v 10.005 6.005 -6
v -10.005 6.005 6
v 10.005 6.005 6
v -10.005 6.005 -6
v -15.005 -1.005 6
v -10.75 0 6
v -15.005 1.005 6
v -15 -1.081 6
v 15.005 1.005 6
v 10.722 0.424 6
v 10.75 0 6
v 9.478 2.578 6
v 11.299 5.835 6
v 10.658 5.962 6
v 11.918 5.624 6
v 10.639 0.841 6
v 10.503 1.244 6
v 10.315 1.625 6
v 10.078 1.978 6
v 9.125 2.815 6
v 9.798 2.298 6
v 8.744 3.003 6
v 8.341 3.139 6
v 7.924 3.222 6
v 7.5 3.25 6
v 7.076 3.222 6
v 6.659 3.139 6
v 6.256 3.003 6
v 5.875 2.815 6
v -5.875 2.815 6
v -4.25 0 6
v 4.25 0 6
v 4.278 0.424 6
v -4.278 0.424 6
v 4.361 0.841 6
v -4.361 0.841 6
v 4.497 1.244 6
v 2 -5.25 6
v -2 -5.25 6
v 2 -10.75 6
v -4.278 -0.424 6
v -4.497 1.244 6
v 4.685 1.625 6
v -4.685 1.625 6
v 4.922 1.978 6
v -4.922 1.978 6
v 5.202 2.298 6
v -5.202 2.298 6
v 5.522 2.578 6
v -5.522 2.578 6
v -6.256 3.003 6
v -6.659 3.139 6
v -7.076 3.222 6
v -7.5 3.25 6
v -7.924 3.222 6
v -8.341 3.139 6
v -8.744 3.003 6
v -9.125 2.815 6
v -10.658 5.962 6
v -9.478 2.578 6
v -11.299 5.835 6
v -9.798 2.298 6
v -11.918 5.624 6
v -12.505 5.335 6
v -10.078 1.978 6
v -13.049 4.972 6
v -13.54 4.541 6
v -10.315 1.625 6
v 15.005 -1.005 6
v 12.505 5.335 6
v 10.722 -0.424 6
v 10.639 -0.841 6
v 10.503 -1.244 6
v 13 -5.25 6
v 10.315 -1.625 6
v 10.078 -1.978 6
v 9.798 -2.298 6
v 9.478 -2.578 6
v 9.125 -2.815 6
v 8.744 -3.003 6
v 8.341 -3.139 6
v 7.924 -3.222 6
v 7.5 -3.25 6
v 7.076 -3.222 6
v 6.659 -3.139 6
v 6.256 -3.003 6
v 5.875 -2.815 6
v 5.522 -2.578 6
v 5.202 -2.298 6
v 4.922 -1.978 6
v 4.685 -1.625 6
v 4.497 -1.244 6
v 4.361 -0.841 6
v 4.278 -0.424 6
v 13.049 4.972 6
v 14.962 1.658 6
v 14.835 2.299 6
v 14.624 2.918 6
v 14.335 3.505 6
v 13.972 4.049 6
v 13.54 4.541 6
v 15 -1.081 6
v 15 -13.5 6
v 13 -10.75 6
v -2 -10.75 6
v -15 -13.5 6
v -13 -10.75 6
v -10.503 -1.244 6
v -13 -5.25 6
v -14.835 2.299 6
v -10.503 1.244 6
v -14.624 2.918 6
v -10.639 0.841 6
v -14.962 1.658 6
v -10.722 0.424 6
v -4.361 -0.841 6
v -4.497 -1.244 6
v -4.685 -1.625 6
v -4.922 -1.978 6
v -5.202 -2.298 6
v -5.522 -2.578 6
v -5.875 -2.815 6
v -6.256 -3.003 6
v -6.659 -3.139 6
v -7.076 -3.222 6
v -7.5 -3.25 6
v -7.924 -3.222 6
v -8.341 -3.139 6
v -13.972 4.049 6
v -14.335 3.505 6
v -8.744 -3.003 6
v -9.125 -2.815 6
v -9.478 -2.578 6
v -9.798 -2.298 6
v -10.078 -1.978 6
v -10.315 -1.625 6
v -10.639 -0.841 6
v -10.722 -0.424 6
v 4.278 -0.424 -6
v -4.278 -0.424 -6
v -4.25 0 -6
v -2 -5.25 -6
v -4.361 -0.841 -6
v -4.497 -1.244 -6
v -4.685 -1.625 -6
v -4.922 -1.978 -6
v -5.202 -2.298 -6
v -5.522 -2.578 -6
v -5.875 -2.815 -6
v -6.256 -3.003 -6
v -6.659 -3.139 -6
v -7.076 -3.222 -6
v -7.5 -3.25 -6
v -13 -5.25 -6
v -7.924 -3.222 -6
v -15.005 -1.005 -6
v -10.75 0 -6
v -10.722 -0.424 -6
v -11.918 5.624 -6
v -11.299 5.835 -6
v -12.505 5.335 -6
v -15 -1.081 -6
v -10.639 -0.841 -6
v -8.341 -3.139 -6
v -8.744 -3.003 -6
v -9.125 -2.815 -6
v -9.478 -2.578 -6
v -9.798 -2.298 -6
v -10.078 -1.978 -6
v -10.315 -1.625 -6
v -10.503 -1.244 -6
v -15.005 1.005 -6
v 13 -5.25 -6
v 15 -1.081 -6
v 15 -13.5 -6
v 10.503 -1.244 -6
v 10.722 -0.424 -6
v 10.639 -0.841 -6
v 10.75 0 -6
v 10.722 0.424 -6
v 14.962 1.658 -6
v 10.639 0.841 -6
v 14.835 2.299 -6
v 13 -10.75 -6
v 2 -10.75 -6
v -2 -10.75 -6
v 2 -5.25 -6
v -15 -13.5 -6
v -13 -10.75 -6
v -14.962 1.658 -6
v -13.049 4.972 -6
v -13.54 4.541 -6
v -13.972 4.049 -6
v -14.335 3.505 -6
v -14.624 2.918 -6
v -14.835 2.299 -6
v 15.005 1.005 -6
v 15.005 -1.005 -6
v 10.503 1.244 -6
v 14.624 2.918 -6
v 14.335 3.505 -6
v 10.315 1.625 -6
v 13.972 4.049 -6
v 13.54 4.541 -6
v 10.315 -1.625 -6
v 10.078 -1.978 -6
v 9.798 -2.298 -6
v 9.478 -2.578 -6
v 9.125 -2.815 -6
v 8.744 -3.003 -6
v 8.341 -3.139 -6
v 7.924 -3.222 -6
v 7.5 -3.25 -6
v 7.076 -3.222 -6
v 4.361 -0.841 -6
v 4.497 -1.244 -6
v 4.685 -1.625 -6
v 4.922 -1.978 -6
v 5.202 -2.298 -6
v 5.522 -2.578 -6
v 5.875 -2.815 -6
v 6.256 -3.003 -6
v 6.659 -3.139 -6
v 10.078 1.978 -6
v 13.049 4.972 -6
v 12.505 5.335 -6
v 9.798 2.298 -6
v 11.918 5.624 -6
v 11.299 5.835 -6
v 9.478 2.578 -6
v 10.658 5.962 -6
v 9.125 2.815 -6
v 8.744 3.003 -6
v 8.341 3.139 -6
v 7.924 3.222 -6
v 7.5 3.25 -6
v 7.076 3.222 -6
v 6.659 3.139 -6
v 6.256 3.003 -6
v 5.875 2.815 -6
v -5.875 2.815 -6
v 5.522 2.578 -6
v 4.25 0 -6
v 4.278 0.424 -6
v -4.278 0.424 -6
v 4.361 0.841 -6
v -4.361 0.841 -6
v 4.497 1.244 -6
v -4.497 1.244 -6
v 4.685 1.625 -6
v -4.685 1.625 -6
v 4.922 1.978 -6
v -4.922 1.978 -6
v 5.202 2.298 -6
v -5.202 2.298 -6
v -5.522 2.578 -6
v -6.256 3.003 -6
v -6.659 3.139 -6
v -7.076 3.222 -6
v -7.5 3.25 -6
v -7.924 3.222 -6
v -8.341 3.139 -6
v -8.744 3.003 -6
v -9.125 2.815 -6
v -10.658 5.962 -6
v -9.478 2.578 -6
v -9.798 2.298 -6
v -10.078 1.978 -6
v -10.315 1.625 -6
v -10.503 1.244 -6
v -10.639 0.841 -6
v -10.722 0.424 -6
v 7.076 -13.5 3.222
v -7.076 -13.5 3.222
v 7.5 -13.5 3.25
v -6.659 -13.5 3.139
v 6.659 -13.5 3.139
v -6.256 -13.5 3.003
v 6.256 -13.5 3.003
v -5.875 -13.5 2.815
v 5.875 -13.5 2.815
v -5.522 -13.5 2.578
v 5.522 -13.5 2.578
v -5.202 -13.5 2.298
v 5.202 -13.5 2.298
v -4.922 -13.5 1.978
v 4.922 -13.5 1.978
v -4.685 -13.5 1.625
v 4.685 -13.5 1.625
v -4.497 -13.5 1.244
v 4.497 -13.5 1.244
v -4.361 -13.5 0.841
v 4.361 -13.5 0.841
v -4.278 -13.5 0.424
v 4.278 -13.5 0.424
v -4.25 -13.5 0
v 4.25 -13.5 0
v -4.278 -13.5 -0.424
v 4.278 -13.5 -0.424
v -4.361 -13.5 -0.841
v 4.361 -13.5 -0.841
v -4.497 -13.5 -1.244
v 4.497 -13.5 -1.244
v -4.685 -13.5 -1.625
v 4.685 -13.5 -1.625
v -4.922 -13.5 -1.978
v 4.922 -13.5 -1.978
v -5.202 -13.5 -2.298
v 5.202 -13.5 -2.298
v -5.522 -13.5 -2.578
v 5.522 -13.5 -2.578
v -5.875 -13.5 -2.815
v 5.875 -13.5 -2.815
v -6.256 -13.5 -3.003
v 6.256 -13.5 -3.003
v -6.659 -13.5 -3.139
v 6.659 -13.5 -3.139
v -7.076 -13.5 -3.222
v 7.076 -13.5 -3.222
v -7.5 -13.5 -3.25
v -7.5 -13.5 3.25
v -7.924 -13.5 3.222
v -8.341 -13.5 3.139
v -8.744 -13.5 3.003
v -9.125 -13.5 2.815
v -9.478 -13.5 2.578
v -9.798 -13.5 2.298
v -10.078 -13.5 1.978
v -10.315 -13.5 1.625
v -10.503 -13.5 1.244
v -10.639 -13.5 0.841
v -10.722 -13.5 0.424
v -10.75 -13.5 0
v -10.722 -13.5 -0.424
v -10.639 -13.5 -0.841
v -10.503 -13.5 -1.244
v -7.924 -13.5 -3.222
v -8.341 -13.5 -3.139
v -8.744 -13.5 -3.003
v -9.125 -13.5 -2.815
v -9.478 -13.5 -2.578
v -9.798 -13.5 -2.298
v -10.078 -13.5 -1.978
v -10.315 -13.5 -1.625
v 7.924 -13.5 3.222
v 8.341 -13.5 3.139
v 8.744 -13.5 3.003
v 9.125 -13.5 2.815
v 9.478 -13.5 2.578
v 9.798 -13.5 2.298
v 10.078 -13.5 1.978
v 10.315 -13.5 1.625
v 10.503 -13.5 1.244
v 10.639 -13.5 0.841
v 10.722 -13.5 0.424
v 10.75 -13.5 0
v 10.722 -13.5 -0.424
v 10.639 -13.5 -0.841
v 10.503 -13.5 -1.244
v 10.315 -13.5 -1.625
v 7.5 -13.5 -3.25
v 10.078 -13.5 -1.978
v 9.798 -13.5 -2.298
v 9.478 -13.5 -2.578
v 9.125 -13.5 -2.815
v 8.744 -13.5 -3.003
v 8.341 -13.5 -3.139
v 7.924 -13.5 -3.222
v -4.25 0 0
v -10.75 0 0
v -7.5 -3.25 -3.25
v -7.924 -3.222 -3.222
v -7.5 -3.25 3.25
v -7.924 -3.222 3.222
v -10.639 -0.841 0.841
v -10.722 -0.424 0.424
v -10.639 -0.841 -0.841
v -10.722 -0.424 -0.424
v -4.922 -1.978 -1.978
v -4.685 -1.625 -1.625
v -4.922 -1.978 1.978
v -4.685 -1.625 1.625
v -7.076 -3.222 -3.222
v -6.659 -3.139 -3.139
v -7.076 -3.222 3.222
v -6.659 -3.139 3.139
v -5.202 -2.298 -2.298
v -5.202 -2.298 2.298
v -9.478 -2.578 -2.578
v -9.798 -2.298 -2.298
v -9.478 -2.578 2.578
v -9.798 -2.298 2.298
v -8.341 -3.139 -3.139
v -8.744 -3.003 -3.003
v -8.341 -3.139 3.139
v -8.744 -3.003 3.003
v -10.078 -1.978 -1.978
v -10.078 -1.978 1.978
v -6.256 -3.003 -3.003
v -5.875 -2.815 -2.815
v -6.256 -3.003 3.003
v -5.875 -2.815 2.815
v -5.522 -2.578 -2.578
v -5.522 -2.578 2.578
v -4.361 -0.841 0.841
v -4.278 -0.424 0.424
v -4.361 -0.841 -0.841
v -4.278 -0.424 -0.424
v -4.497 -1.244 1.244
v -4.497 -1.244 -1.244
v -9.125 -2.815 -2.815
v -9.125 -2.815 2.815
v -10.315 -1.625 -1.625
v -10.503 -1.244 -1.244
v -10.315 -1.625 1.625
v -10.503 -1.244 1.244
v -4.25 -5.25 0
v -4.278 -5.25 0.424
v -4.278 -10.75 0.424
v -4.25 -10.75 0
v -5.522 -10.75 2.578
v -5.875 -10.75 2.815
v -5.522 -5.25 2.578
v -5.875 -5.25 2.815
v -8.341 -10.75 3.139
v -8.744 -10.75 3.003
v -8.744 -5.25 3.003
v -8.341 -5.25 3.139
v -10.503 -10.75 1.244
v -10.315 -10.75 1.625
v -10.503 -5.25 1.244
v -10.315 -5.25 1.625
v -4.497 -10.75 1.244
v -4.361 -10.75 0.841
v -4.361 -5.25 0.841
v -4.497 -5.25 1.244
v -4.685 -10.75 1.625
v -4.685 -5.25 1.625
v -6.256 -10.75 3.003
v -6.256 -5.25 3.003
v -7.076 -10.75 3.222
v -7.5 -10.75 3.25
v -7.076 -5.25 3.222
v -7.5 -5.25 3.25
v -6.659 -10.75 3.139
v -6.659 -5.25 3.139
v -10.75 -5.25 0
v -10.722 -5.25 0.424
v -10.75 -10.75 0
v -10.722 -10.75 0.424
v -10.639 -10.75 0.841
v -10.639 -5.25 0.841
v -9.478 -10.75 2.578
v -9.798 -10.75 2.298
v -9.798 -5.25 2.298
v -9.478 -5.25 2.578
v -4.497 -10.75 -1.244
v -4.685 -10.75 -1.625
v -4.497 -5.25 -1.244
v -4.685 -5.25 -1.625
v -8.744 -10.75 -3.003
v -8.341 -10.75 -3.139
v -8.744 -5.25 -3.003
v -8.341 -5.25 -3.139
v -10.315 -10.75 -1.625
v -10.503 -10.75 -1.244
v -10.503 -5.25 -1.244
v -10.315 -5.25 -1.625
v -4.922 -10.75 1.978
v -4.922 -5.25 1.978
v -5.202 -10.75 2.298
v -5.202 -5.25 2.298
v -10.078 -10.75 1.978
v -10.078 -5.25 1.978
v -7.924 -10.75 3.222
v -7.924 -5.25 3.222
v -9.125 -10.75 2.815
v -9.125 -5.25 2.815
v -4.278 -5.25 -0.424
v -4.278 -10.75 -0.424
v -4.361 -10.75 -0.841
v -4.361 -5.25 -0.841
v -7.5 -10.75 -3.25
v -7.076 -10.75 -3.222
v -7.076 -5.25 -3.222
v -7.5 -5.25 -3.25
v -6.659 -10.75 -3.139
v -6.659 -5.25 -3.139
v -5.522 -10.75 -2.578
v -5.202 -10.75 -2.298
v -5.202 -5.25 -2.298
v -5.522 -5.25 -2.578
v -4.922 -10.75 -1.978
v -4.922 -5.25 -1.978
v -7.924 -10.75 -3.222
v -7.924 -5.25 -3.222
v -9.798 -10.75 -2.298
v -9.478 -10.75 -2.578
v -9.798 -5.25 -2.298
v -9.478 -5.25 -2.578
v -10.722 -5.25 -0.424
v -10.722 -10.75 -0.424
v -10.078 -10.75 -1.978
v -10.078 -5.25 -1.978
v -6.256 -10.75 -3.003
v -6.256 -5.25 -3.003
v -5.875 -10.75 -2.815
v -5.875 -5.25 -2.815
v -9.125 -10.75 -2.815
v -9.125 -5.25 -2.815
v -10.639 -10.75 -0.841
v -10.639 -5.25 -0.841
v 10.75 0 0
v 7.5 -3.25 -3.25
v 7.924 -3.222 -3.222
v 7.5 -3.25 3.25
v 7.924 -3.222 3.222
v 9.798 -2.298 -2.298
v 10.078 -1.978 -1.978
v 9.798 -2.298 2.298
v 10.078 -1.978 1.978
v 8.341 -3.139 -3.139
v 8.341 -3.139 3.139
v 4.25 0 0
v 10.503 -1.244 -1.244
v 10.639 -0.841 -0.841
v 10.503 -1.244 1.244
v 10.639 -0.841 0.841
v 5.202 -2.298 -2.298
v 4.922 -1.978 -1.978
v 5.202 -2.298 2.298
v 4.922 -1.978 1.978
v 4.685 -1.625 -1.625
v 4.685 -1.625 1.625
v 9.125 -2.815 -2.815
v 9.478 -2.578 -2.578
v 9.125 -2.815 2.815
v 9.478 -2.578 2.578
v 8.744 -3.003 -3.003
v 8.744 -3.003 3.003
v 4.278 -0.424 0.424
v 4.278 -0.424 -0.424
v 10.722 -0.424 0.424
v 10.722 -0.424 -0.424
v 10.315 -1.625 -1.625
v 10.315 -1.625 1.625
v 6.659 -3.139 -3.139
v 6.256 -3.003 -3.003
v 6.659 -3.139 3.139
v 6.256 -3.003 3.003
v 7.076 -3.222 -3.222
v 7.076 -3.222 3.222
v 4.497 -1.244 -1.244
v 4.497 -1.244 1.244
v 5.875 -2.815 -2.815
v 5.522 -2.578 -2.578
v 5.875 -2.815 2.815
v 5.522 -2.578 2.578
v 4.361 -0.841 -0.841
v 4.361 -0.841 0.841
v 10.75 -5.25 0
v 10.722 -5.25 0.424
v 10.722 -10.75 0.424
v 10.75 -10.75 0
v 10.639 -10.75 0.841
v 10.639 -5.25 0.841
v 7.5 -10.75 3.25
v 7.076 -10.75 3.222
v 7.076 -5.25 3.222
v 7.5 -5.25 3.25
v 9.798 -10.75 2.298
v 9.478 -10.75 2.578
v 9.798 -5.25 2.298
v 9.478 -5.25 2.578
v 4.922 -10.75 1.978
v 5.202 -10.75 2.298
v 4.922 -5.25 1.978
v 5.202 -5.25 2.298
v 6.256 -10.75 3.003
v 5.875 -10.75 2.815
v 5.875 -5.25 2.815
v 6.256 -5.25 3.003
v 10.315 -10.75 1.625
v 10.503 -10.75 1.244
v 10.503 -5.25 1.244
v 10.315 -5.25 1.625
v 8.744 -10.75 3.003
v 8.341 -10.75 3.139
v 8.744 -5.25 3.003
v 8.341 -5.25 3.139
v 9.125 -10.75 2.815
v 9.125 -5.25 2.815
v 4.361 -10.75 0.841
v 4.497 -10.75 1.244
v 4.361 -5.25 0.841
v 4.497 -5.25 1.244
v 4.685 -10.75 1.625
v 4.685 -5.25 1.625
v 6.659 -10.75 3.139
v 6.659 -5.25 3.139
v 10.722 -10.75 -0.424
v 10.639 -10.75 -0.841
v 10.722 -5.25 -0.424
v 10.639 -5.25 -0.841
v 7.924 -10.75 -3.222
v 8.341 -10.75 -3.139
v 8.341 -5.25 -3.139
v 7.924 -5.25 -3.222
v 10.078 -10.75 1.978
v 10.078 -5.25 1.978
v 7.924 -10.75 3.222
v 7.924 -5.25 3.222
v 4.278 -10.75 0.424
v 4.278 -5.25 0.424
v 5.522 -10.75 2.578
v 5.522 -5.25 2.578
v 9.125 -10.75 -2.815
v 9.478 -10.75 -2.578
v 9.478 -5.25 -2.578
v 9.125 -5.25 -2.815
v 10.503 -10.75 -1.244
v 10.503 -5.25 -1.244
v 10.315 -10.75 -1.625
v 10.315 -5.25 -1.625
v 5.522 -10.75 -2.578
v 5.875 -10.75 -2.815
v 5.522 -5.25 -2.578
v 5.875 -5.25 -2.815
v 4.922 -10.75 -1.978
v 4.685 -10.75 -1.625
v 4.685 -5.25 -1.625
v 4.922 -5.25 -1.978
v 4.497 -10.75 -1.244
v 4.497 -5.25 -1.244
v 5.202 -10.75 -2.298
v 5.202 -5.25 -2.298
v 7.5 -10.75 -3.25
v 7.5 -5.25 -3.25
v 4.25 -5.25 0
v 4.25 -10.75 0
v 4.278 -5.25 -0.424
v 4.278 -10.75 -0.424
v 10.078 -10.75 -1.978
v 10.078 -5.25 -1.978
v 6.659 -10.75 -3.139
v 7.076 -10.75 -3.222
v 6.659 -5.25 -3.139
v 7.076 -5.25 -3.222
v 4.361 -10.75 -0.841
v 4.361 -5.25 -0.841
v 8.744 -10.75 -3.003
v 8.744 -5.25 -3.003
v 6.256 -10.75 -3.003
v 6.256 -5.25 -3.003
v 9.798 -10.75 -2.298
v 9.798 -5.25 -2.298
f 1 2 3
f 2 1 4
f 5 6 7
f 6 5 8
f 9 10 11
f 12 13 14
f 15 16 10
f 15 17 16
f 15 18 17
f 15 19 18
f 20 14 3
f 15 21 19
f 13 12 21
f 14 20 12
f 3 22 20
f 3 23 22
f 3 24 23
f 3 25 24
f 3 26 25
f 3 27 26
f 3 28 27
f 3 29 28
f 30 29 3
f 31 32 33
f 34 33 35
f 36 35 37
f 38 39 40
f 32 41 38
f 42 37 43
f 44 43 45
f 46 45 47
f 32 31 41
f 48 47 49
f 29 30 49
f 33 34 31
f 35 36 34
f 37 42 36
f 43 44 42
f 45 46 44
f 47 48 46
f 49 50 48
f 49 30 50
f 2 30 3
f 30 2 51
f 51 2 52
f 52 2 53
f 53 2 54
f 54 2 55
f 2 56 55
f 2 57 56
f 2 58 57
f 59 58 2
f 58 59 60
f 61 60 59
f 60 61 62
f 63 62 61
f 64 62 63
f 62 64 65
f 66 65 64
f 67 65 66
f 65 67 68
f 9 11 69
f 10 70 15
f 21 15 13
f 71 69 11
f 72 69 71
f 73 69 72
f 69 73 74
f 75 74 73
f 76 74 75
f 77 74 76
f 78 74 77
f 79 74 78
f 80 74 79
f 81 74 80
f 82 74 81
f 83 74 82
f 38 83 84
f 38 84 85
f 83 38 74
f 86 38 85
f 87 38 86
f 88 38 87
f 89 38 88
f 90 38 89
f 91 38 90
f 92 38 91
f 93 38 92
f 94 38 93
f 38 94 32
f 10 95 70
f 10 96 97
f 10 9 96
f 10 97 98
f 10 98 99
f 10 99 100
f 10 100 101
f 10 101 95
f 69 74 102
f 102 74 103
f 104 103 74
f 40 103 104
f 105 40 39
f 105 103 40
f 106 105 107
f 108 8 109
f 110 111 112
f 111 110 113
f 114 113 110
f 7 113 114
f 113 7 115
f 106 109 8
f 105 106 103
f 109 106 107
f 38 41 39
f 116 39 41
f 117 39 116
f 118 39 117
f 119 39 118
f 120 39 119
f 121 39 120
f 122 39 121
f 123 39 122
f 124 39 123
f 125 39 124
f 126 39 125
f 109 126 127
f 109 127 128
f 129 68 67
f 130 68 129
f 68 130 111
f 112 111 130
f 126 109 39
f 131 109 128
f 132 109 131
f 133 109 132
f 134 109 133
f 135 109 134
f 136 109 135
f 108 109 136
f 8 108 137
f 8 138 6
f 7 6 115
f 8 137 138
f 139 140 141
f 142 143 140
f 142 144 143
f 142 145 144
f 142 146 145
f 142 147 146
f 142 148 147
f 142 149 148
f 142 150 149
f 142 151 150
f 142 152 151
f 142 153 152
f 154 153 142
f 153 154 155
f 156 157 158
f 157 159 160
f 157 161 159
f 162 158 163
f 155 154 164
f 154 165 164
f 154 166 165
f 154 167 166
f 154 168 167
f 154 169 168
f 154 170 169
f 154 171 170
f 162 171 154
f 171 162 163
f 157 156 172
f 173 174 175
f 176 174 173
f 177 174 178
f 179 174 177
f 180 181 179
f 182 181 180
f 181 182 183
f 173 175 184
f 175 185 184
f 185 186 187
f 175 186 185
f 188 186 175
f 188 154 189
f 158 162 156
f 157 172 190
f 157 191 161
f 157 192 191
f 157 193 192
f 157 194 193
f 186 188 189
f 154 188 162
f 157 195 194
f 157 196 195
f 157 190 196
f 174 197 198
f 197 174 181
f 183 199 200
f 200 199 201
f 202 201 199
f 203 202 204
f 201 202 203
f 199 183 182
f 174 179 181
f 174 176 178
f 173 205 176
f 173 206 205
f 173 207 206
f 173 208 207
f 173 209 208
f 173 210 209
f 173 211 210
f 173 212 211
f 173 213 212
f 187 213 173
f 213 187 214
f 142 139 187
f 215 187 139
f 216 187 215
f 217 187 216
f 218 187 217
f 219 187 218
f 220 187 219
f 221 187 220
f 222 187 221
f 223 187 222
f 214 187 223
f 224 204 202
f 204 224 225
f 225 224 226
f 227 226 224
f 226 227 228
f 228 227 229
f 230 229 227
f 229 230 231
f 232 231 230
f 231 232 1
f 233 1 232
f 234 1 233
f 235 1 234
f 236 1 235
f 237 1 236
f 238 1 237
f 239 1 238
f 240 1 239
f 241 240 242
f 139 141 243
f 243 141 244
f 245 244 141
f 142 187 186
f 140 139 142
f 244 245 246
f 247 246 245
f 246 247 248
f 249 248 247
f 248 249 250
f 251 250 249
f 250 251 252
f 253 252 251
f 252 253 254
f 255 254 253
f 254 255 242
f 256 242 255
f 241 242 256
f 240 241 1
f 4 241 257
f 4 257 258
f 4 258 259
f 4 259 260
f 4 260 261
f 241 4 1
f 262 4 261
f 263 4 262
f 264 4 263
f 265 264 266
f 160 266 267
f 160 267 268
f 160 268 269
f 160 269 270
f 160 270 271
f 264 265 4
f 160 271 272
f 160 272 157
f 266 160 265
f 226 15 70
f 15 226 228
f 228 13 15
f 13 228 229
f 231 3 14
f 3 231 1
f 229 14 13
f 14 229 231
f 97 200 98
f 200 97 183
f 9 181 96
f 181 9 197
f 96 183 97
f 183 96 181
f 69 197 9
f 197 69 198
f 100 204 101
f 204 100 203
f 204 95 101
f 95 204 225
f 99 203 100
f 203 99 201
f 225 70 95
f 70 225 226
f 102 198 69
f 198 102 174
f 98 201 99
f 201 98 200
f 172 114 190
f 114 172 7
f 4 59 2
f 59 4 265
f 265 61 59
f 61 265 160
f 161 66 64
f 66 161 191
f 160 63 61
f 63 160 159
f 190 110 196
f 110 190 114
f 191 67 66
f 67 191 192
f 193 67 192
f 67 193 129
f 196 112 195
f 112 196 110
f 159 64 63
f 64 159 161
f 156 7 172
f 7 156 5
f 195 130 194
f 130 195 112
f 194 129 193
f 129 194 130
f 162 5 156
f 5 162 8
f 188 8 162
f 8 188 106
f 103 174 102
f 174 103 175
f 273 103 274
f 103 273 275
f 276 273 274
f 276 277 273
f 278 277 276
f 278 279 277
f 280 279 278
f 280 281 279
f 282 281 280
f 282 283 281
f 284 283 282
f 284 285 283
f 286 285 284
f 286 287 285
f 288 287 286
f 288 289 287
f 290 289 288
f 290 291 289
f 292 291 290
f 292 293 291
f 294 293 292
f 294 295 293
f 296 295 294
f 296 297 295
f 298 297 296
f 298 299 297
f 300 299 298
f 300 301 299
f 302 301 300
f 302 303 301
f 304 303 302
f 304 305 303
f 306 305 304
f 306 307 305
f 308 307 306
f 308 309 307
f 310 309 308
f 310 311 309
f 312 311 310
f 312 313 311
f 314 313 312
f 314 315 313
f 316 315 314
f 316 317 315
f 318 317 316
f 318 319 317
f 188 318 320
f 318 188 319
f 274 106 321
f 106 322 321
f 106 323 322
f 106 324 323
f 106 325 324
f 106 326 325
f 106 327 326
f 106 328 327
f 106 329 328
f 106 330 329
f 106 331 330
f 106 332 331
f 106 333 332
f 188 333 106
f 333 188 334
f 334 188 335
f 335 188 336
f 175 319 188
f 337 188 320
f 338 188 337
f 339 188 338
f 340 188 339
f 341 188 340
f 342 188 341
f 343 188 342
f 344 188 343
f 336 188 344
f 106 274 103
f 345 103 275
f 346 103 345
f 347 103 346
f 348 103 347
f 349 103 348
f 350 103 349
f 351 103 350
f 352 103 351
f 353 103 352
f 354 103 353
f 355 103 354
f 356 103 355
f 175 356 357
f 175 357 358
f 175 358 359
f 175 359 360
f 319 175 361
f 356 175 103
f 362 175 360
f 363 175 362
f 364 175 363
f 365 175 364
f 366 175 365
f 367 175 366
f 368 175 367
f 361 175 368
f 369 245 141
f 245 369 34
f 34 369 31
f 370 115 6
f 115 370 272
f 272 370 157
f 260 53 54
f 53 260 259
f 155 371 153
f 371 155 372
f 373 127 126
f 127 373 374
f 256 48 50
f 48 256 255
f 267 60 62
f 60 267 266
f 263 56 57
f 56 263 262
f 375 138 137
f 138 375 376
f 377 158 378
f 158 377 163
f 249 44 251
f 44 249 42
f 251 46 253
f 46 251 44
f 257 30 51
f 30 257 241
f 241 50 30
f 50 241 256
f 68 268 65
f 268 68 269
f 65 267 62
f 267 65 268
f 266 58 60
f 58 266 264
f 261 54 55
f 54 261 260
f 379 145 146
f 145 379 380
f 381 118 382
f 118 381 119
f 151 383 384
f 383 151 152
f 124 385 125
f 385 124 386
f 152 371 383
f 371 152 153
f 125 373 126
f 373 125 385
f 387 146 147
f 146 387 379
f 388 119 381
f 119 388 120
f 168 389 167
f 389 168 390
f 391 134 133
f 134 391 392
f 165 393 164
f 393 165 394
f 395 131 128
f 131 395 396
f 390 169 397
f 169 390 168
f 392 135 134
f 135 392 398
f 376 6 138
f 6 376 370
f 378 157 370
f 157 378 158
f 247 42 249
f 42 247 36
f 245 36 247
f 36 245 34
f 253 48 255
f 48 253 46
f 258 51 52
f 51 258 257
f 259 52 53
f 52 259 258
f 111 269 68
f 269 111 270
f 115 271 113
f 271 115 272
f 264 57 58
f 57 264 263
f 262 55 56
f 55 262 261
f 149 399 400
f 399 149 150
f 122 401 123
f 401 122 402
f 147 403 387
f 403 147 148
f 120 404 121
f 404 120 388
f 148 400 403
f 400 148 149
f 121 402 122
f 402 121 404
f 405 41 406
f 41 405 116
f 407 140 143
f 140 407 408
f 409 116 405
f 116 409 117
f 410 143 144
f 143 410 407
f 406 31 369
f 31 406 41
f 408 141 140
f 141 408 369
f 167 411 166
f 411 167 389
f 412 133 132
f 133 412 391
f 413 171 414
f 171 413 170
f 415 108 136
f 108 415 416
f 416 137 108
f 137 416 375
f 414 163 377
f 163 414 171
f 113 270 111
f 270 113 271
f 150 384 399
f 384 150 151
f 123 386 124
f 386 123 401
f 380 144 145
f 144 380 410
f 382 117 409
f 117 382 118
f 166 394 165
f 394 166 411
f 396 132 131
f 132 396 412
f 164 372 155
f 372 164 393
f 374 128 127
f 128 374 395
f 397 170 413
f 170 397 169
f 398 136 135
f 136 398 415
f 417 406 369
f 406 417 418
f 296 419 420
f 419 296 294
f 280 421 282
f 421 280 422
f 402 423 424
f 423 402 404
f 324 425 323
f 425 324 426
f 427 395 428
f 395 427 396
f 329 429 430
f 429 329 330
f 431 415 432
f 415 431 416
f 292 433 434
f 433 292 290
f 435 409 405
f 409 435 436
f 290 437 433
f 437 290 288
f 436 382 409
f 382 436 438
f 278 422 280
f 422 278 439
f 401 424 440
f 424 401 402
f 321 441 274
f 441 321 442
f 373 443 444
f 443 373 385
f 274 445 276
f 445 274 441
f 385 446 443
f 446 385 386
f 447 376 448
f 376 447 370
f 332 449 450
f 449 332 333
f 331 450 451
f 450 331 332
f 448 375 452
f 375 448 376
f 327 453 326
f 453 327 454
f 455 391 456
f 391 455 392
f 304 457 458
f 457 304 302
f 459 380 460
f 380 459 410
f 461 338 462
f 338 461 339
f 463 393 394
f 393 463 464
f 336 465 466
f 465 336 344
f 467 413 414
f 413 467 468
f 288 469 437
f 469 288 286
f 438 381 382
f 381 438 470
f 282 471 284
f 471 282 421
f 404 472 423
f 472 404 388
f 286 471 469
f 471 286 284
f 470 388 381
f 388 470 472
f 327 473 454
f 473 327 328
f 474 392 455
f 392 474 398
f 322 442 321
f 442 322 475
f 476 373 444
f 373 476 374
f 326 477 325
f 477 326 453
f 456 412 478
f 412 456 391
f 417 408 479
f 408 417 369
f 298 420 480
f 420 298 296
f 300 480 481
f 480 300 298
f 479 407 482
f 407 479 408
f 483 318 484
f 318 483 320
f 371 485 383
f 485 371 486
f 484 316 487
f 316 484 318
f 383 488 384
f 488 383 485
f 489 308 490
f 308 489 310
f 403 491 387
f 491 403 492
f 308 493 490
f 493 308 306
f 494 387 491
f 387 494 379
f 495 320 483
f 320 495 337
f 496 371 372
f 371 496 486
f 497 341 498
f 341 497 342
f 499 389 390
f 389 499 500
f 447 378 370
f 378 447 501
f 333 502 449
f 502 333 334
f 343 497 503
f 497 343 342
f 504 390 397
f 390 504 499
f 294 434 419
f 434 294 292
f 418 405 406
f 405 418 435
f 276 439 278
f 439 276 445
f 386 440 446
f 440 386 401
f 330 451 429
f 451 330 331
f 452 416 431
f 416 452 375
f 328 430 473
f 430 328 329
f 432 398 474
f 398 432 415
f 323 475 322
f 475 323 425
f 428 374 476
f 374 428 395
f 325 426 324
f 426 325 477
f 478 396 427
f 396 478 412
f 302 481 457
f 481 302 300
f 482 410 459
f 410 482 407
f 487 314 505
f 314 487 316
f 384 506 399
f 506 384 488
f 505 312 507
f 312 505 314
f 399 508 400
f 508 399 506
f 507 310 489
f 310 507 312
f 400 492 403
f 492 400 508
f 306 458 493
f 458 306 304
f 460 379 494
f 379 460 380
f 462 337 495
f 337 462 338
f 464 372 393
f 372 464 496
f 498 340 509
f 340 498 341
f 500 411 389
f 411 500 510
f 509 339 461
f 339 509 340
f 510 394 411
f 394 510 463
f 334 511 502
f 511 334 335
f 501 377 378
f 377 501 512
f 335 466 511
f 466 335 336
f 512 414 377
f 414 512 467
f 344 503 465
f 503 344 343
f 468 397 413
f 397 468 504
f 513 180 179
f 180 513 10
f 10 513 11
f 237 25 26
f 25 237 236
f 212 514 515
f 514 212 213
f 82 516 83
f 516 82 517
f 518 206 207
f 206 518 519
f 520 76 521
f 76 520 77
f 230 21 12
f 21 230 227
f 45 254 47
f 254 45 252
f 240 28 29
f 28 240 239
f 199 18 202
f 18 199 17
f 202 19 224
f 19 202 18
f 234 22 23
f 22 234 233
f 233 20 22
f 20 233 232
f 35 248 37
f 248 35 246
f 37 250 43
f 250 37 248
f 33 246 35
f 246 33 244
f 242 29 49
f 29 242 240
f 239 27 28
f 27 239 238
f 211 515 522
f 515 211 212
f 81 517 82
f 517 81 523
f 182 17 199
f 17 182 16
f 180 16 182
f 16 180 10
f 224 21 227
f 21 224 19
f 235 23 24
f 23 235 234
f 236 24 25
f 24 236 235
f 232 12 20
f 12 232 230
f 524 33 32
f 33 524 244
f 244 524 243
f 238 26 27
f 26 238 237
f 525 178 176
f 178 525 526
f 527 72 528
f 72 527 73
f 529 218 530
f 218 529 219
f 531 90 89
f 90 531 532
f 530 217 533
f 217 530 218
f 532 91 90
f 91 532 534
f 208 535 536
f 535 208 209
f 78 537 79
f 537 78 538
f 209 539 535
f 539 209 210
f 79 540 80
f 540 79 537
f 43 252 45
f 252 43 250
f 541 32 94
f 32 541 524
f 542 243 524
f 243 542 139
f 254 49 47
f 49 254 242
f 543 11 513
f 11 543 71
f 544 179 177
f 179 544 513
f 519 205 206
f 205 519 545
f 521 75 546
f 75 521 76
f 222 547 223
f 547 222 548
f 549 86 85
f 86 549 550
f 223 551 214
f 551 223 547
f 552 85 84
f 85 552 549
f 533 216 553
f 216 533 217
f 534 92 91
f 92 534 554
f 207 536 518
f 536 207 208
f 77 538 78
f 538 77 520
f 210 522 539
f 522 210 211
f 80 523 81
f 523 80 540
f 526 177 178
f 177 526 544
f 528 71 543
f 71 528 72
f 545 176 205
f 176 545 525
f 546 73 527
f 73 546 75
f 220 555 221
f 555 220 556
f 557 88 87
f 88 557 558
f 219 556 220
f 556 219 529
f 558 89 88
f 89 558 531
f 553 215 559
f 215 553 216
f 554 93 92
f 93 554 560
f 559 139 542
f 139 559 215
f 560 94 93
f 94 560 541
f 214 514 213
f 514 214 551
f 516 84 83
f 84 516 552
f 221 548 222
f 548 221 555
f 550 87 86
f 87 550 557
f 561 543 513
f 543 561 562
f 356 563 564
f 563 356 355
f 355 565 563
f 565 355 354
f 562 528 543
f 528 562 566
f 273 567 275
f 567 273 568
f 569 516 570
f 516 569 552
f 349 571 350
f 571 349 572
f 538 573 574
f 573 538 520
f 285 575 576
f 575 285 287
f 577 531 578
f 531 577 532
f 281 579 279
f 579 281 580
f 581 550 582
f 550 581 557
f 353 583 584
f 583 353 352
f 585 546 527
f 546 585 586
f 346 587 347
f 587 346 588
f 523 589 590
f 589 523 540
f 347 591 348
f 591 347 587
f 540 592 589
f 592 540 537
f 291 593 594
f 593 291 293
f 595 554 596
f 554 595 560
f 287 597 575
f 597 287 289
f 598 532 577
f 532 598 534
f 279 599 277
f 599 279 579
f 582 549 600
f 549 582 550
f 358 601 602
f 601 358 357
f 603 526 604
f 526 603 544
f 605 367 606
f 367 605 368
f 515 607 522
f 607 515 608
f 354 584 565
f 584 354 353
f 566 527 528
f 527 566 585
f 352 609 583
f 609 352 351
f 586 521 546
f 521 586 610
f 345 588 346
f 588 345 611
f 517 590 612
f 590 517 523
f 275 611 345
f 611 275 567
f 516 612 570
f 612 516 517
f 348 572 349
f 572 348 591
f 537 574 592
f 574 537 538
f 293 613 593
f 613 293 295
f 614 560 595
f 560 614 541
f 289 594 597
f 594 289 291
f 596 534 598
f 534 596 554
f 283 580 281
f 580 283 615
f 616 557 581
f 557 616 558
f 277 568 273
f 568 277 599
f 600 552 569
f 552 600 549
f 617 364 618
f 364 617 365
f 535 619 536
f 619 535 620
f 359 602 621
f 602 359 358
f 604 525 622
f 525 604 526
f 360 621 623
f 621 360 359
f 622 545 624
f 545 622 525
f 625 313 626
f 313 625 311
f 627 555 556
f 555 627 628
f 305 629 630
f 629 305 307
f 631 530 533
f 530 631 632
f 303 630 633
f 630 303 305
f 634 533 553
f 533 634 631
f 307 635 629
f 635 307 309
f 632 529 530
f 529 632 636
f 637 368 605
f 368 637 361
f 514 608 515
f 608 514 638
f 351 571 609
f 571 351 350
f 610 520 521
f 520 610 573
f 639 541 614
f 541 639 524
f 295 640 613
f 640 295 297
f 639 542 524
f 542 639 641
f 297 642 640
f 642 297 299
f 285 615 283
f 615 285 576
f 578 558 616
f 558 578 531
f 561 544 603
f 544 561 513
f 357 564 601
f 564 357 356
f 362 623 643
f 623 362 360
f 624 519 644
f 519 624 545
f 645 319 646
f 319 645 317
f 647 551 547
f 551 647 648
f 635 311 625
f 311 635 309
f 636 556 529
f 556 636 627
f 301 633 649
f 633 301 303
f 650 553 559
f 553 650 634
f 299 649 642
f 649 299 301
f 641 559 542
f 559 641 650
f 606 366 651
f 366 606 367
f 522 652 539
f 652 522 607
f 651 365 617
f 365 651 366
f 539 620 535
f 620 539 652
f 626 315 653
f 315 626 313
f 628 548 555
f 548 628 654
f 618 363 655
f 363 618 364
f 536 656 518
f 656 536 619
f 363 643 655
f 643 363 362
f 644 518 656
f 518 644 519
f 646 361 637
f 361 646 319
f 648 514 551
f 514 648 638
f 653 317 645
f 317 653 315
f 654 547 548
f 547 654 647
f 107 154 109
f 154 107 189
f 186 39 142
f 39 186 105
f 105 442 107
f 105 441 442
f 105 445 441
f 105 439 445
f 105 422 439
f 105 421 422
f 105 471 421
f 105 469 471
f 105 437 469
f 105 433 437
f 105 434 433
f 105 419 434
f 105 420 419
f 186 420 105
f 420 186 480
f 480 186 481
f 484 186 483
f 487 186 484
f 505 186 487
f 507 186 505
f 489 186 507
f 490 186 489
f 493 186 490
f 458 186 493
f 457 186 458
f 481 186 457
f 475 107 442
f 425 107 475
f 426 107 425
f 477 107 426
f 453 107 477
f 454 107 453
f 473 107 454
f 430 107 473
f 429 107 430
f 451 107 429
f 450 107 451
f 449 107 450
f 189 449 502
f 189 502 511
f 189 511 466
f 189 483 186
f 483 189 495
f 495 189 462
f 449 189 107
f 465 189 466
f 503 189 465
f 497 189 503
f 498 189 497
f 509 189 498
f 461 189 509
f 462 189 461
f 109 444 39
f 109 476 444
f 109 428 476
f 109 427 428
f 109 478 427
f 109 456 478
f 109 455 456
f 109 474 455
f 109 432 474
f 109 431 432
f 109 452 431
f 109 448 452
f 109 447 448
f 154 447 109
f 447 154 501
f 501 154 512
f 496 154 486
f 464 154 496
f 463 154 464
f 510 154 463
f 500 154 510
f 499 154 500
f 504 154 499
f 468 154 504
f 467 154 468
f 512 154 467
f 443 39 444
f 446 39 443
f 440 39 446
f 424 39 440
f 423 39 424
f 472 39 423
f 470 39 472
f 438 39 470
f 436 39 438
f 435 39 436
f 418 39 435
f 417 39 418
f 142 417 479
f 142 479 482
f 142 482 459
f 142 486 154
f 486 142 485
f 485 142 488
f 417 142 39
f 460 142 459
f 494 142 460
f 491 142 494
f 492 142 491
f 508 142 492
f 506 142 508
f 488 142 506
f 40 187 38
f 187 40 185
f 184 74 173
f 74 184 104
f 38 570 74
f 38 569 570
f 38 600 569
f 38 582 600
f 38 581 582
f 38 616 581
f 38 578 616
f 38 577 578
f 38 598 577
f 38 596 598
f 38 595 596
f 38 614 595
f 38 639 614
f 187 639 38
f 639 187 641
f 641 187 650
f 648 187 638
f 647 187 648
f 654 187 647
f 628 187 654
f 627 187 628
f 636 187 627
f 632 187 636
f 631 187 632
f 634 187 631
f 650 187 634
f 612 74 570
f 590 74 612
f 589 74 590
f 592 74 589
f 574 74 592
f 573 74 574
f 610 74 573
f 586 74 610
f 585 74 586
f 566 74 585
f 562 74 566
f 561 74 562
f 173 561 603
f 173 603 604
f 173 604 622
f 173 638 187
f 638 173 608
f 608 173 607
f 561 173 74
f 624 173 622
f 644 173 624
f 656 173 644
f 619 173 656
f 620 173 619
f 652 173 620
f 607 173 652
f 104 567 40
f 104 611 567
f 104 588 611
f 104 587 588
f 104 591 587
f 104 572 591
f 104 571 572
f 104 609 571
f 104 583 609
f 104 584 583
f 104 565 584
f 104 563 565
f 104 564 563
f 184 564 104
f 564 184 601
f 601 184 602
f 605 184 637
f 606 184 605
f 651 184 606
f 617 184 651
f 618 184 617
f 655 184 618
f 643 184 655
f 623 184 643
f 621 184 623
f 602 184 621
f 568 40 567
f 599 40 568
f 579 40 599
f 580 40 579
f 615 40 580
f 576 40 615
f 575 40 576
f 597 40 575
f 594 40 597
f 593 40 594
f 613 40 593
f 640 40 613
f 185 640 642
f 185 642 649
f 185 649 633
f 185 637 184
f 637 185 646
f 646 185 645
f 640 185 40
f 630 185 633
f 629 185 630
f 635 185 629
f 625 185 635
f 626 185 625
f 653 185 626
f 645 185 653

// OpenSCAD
$fn = 48;


difference() {
	union() {
		color(alpha = 1.0000000000, c = "Gold") {
			translate(v = [0, 0, 6.0000000000]) {
				rotate(a = [0, 0, 0]) {
					translate(v = [0, 0, -12]) {
						linear_extrude(height = 12) {
							offset(r = 5) {
								square(center = true, size = [17.0100000000, 2.0100000000]);
							}
						}
					}
				}
			}
		}
		color(alpha = 1.0000000000, c = "Gold") {
			translate(v = [1.5000000000, 0, 6.0000000000]) {
				rotate(a = [0, 0, 0]) {
					translate(v = [0, 0, -12]) {
						linear_extrude(height = 12) {
							offset(r = 5) {
								square(center = true, size = [17.0100000000, 2.0100000000]);
							}
						}
					}
				}
			}
		}
		color(alpha = 1.0000000000, c = "Gold") {
			translate(v = [-1.5000000000, 0, 6.0000000000]) {
				rotate(a = [0, 0, 0]) {
					translate(v = [0, 0, -12]) {
						linear_extrude(height = 12) {
							offset(r = 5) {
								square(center = true, size = [17.0100000000, 2.0100000000]);
							}
						}
					}
				}
			}
		}
		color(alpha = 1.0000000000, c = "Gold") {
			translate(v = [0, -6.7500000000, 6.0000000000]) {
				rotate(a = [0, 0, 0]) {
					translate(v = [0, 0, -6.0000000000]) {
						cube(center = true, size = [30, 13.5000000000, 12]);
					}
				}
			}
		}
	}
	union() {
		color(alpha = 1.0000000000, c = "Gold") {
			translate(v = [-7.5000000000, 0.0000000000, 0]) {
				rotate(a = [0, 0, 0]) {
					translate(v = [0, 0, -250]) {
						cylinder(h = 500, r = 3.2500000000);
					}
				}
			}
		}
		color(alpha = 1.0000000000, c = "Gold") {
			translate(v = [-7.5000000000, 0.0000000000, 0]) {
				rotate(a = [90, 0, 0]) {
					cylinder(h = 13.5000000000, r = 3.2500000000);
				}
			}
		}
		color(alpha = 1.0000000000, c = "Gold") {
			translate(v = [7.5000000000, 0.0000000000, 0]) {
				rotate(a = [0, 0, 0]) {
					translate(v = [0, 0, -250]) {
						cylinder(h = 500, r = 3.2500000000);
					}
				}
			}
		}
		color(alpha = 1.0000000000, c = "Gold") {
			translate(v = [7.5000000000, 0.0000000000, 0]) {
				rotate(a = [90, 0, 0]) {
					cylinder(h = 13.5000000000, r = 3.2500000000);
				}
			}
		}
		color(alpha = 1.0000000000, c = "Gold") {
			translate(v = [-7.5000000000, -8, 6.0000000000]) {
				rotate(a = [0, 0, 0]) {
					translate(v = [0, 0, -6.0000000000]) {
						cube(center = true, size = [11, 5.5000000000, 12]);
					}
				}
			}
		}
		color(alpha = 1.0000000000, c = "Gold") {
			translate(v = [7.5000000000, -8, 6.0000000000]) {
				rotate(a = [0, 0, 0]) {
					translate(v = [0, 0, -6.0000000000]) {
						cube(center = true, size = [11, 5.5000000000, 12]);
					}
				}
			}
		}
	}
}
